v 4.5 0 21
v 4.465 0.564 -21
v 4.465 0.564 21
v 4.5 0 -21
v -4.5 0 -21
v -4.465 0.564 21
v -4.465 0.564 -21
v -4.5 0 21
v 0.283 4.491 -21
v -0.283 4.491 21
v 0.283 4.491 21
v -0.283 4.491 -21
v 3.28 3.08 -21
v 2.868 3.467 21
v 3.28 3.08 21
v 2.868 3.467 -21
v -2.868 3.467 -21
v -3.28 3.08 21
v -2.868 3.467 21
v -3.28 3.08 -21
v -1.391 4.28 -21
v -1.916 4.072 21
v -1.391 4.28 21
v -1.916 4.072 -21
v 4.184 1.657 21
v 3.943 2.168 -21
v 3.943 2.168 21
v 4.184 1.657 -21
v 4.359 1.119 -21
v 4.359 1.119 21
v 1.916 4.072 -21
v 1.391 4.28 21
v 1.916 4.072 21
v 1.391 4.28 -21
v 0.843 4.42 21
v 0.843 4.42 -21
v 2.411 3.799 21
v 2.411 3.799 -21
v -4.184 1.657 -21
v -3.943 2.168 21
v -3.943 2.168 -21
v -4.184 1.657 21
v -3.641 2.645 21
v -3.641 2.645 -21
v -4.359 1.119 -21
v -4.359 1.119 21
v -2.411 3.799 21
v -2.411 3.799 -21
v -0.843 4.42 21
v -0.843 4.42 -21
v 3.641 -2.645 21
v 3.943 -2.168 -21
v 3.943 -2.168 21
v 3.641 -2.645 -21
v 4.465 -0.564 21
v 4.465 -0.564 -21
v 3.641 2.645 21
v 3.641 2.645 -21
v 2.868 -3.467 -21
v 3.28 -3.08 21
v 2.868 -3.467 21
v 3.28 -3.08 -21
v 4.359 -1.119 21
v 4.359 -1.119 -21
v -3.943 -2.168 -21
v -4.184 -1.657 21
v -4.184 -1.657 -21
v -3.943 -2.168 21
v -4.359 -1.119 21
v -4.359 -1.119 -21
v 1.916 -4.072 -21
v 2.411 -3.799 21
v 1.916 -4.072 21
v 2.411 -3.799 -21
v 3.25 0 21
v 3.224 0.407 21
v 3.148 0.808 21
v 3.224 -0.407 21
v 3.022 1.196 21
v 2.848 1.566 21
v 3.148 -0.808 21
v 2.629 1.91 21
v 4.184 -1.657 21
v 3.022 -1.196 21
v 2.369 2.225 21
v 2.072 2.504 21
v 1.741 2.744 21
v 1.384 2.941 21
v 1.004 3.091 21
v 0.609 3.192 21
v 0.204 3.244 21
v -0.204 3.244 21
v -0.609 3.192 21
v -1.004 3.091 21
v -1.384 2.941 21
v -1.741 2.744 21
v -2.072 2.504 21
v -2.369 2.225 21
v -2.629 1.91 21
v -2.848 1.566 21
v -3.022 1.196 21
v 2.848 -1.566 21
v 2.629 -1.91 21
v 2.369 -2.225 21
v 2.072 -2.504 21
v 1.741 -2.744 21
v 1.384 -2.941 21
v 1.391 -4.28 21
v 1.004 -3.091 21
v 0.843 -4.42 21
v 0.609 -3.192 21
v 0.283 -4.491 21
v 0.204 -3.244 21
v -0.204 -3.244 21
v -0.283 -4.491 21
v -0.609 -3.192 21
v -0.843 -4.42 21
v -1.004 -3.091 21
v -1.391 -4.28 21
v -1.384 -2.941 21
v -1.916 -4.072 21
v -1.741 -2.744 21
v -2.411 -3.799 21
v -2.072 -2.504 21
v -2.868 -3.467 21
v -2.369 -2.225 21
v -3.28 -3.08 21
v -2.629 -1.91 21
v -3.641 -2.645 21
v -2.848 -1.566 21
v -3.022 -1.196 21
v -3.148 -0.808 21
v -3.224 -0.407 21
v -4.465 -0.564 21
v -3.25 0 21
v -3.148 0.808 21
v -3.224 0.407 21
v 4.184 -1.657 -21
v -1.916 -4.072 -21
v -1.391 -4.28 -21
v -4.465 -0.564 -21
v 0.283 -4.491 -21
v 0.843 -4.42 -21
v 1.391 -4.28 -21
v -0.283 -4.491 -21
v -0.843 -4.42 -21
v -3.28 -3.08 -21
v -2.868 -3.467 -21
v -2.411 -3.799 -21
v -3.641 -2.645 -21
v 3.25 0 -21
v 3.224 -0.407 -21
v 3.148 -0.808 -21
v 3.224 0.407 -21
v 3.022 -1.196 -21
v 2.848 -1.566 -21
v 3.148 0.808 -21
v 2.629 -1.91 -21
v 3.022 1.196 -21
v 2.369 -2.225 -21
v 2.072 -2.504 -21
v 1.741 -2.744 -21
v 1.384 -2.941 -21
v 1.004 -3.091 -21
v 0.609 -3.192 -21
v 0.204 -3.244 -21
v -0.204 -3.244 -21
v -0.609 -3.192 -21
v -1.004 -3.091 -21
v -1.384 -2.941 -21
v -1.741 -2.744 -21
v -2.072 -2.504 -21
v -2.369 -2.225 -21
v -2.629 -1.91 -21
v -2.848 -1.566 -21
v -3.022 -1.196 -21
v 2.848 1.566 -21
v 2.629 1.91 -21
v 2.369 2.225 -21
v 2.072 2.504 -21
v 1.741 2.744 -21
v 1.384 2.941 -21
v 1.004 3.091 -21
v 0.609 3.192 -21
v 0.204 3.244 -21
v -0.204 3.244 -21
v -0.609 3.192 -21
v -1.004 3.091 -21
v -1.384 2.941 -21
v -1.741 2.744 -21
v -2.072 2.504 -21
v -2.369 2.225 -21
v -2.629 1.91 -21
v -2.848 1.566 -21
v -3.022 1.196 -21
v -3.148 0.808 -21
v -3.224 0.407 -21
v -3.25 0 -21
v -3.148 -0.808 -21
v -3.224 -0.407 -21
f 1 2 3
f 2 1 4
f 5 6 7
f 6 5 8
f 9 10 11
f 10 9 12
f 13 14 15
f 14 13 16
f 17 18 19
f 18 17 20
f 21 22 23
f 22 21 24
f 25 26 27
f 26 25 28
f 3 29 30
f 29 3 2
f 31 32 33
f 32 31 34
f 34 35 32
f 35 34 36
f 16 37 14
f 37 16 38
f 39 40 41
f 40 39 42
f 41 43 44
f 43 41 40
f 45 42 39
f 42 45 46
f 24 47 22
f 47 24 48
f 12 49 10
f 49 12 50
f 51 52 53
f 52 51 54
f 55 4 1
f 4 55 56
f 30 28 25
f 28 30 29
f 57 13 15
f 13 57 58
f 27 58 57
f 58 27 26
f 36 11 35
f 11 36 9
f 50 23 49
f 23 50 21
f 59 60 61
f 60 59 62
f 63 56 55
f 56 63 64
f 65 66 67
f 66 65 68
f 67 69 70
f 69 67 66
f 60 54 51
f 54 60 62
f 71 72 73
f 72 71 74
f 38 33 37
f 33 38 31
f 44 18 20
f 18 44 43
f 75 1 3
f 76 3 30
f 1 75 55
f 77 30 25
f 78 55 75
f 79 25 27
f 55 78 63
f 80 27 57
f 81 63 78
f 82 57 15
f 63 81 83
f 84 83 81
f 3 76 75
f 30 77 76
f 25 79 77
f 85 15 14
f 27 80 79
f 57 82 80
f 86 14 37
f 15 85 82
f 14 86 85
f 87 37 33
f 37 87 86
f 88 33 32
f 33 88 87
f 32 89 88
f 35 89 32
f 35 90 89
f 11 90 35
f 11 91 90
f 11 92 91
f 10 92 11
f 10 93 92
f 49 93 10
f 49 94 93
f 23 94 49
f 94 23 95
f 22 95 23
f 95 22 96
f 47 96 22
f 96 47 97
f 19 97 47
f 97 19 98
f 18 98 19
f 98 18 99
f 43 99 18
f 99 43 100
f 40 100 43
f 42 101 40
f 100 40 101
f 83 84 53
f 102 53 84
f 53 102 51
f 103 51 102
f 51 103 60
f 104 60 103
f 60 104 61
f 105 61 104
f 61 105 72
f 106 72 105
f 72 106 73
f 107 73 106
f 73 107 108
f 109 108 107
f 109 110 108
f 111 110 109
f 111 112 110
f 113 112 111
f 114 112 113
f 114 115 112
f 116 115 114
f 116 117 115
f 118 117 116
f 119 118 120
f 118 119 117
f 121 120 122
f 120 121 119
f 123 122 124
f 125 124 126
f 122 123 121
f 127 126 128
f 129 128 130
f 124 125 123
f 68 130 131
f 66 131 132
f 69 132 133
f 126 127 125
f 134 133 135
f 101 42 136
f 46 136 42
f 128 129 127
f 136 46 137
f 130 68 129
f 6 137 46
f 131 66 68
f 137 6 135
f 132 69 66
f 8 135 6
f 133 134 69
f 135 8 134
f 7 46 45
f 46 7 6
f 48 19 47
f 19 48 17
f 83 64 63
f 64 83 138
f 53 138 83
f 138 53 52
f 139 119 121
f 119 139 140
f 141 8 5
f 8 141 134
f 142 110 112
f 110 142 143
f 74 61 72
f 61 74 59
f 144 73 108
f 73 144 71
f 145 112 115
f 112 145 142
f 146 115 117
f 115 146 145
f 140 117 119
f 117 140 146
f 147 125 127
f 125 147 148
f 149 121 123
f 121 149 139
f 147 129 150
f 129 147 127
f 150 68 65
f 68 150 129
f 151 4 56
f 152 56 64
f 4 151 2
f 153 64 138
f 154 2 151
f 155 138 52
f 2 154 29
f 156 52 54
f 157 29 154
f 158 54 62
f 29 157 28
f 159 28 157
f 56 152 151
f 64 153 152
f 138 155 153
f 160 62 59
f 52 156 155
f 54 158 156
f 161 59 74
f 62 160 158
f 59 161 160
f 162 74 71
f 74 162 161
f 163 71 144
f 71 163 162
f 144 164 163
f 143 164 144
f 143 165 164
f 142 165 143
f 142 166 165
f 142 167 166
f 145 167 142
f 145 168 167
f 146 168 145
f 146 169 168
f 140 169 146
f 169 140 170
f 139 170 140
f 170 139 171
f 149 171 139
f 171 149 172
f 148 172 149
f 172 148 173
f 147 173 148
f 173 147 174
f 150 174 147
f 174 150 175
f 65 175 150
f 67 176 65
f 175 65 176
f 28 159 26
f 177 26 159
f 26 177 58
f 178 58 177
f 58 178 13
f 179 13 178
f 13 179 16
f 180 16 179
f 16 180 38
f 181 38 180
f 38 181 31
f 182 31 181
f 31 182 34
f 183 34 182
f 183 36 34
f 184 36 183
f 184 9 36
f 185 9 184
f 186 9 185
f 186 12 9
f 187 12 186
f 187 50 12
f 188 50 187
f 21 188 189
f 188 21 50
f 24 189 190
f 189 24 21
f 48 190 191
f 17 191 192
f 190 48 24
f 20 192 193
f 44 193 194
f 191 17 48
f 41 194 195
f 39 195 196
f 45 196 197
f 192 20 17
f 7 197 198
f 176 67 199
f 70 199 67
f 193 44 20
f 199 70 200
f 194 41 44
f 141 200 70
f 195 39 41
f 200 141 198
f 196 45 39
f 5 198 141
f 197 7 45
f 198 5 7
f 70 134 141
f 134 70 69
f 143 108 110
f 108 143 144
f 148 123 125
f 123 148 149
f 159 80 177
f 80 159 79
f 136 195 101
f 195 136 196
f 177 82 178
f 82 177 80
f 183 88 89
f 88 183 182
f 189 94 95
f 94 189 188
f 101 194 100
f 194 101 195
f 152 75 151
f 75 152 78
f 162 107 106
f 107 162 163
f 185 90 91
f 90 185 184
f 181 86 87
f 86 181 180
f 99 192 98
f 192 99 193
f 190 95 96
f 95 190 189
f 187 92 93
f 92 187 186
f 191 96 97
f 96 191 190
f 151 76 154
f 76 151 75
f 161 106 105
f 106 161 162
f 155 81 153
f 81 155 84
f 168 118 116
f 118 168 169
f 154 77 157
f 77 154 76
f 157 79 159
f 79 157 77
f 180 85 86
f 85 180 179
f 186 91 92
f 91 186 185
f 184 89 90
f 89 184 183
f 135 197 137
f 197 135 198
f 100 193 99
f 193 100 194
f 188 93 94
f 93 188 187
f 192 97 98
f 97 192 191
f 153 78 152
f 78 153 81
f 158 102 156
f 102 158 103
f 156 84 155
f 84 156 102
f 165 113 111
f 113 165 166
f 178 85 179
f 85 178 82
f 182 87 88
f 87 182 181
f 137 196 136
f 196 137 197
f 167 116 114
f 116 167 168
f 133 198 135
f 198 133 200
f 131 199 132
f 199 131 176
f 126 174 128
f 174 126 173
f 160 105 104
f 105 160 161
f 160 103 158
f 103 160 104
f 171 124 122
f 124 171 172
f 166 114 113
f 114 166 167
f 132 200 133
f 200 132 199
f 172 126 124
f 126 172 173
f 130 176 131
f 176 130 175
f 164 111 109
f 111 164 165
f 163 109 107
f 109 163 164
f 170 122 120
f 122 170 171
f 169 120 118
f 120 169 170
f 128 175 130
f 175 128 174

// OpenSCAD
$fn = 50;


difference() {
	union() {
		translate(v = [0, 0, -21.0000000000]) {
			cylinder(h = 42, r = 4.5000000000);
		}
	}
	union() {
		translate(v = [0, 0, -100.0000000000]) {
			cylinder(h = 200, r = 3.2500000000);
		}
	}
}
